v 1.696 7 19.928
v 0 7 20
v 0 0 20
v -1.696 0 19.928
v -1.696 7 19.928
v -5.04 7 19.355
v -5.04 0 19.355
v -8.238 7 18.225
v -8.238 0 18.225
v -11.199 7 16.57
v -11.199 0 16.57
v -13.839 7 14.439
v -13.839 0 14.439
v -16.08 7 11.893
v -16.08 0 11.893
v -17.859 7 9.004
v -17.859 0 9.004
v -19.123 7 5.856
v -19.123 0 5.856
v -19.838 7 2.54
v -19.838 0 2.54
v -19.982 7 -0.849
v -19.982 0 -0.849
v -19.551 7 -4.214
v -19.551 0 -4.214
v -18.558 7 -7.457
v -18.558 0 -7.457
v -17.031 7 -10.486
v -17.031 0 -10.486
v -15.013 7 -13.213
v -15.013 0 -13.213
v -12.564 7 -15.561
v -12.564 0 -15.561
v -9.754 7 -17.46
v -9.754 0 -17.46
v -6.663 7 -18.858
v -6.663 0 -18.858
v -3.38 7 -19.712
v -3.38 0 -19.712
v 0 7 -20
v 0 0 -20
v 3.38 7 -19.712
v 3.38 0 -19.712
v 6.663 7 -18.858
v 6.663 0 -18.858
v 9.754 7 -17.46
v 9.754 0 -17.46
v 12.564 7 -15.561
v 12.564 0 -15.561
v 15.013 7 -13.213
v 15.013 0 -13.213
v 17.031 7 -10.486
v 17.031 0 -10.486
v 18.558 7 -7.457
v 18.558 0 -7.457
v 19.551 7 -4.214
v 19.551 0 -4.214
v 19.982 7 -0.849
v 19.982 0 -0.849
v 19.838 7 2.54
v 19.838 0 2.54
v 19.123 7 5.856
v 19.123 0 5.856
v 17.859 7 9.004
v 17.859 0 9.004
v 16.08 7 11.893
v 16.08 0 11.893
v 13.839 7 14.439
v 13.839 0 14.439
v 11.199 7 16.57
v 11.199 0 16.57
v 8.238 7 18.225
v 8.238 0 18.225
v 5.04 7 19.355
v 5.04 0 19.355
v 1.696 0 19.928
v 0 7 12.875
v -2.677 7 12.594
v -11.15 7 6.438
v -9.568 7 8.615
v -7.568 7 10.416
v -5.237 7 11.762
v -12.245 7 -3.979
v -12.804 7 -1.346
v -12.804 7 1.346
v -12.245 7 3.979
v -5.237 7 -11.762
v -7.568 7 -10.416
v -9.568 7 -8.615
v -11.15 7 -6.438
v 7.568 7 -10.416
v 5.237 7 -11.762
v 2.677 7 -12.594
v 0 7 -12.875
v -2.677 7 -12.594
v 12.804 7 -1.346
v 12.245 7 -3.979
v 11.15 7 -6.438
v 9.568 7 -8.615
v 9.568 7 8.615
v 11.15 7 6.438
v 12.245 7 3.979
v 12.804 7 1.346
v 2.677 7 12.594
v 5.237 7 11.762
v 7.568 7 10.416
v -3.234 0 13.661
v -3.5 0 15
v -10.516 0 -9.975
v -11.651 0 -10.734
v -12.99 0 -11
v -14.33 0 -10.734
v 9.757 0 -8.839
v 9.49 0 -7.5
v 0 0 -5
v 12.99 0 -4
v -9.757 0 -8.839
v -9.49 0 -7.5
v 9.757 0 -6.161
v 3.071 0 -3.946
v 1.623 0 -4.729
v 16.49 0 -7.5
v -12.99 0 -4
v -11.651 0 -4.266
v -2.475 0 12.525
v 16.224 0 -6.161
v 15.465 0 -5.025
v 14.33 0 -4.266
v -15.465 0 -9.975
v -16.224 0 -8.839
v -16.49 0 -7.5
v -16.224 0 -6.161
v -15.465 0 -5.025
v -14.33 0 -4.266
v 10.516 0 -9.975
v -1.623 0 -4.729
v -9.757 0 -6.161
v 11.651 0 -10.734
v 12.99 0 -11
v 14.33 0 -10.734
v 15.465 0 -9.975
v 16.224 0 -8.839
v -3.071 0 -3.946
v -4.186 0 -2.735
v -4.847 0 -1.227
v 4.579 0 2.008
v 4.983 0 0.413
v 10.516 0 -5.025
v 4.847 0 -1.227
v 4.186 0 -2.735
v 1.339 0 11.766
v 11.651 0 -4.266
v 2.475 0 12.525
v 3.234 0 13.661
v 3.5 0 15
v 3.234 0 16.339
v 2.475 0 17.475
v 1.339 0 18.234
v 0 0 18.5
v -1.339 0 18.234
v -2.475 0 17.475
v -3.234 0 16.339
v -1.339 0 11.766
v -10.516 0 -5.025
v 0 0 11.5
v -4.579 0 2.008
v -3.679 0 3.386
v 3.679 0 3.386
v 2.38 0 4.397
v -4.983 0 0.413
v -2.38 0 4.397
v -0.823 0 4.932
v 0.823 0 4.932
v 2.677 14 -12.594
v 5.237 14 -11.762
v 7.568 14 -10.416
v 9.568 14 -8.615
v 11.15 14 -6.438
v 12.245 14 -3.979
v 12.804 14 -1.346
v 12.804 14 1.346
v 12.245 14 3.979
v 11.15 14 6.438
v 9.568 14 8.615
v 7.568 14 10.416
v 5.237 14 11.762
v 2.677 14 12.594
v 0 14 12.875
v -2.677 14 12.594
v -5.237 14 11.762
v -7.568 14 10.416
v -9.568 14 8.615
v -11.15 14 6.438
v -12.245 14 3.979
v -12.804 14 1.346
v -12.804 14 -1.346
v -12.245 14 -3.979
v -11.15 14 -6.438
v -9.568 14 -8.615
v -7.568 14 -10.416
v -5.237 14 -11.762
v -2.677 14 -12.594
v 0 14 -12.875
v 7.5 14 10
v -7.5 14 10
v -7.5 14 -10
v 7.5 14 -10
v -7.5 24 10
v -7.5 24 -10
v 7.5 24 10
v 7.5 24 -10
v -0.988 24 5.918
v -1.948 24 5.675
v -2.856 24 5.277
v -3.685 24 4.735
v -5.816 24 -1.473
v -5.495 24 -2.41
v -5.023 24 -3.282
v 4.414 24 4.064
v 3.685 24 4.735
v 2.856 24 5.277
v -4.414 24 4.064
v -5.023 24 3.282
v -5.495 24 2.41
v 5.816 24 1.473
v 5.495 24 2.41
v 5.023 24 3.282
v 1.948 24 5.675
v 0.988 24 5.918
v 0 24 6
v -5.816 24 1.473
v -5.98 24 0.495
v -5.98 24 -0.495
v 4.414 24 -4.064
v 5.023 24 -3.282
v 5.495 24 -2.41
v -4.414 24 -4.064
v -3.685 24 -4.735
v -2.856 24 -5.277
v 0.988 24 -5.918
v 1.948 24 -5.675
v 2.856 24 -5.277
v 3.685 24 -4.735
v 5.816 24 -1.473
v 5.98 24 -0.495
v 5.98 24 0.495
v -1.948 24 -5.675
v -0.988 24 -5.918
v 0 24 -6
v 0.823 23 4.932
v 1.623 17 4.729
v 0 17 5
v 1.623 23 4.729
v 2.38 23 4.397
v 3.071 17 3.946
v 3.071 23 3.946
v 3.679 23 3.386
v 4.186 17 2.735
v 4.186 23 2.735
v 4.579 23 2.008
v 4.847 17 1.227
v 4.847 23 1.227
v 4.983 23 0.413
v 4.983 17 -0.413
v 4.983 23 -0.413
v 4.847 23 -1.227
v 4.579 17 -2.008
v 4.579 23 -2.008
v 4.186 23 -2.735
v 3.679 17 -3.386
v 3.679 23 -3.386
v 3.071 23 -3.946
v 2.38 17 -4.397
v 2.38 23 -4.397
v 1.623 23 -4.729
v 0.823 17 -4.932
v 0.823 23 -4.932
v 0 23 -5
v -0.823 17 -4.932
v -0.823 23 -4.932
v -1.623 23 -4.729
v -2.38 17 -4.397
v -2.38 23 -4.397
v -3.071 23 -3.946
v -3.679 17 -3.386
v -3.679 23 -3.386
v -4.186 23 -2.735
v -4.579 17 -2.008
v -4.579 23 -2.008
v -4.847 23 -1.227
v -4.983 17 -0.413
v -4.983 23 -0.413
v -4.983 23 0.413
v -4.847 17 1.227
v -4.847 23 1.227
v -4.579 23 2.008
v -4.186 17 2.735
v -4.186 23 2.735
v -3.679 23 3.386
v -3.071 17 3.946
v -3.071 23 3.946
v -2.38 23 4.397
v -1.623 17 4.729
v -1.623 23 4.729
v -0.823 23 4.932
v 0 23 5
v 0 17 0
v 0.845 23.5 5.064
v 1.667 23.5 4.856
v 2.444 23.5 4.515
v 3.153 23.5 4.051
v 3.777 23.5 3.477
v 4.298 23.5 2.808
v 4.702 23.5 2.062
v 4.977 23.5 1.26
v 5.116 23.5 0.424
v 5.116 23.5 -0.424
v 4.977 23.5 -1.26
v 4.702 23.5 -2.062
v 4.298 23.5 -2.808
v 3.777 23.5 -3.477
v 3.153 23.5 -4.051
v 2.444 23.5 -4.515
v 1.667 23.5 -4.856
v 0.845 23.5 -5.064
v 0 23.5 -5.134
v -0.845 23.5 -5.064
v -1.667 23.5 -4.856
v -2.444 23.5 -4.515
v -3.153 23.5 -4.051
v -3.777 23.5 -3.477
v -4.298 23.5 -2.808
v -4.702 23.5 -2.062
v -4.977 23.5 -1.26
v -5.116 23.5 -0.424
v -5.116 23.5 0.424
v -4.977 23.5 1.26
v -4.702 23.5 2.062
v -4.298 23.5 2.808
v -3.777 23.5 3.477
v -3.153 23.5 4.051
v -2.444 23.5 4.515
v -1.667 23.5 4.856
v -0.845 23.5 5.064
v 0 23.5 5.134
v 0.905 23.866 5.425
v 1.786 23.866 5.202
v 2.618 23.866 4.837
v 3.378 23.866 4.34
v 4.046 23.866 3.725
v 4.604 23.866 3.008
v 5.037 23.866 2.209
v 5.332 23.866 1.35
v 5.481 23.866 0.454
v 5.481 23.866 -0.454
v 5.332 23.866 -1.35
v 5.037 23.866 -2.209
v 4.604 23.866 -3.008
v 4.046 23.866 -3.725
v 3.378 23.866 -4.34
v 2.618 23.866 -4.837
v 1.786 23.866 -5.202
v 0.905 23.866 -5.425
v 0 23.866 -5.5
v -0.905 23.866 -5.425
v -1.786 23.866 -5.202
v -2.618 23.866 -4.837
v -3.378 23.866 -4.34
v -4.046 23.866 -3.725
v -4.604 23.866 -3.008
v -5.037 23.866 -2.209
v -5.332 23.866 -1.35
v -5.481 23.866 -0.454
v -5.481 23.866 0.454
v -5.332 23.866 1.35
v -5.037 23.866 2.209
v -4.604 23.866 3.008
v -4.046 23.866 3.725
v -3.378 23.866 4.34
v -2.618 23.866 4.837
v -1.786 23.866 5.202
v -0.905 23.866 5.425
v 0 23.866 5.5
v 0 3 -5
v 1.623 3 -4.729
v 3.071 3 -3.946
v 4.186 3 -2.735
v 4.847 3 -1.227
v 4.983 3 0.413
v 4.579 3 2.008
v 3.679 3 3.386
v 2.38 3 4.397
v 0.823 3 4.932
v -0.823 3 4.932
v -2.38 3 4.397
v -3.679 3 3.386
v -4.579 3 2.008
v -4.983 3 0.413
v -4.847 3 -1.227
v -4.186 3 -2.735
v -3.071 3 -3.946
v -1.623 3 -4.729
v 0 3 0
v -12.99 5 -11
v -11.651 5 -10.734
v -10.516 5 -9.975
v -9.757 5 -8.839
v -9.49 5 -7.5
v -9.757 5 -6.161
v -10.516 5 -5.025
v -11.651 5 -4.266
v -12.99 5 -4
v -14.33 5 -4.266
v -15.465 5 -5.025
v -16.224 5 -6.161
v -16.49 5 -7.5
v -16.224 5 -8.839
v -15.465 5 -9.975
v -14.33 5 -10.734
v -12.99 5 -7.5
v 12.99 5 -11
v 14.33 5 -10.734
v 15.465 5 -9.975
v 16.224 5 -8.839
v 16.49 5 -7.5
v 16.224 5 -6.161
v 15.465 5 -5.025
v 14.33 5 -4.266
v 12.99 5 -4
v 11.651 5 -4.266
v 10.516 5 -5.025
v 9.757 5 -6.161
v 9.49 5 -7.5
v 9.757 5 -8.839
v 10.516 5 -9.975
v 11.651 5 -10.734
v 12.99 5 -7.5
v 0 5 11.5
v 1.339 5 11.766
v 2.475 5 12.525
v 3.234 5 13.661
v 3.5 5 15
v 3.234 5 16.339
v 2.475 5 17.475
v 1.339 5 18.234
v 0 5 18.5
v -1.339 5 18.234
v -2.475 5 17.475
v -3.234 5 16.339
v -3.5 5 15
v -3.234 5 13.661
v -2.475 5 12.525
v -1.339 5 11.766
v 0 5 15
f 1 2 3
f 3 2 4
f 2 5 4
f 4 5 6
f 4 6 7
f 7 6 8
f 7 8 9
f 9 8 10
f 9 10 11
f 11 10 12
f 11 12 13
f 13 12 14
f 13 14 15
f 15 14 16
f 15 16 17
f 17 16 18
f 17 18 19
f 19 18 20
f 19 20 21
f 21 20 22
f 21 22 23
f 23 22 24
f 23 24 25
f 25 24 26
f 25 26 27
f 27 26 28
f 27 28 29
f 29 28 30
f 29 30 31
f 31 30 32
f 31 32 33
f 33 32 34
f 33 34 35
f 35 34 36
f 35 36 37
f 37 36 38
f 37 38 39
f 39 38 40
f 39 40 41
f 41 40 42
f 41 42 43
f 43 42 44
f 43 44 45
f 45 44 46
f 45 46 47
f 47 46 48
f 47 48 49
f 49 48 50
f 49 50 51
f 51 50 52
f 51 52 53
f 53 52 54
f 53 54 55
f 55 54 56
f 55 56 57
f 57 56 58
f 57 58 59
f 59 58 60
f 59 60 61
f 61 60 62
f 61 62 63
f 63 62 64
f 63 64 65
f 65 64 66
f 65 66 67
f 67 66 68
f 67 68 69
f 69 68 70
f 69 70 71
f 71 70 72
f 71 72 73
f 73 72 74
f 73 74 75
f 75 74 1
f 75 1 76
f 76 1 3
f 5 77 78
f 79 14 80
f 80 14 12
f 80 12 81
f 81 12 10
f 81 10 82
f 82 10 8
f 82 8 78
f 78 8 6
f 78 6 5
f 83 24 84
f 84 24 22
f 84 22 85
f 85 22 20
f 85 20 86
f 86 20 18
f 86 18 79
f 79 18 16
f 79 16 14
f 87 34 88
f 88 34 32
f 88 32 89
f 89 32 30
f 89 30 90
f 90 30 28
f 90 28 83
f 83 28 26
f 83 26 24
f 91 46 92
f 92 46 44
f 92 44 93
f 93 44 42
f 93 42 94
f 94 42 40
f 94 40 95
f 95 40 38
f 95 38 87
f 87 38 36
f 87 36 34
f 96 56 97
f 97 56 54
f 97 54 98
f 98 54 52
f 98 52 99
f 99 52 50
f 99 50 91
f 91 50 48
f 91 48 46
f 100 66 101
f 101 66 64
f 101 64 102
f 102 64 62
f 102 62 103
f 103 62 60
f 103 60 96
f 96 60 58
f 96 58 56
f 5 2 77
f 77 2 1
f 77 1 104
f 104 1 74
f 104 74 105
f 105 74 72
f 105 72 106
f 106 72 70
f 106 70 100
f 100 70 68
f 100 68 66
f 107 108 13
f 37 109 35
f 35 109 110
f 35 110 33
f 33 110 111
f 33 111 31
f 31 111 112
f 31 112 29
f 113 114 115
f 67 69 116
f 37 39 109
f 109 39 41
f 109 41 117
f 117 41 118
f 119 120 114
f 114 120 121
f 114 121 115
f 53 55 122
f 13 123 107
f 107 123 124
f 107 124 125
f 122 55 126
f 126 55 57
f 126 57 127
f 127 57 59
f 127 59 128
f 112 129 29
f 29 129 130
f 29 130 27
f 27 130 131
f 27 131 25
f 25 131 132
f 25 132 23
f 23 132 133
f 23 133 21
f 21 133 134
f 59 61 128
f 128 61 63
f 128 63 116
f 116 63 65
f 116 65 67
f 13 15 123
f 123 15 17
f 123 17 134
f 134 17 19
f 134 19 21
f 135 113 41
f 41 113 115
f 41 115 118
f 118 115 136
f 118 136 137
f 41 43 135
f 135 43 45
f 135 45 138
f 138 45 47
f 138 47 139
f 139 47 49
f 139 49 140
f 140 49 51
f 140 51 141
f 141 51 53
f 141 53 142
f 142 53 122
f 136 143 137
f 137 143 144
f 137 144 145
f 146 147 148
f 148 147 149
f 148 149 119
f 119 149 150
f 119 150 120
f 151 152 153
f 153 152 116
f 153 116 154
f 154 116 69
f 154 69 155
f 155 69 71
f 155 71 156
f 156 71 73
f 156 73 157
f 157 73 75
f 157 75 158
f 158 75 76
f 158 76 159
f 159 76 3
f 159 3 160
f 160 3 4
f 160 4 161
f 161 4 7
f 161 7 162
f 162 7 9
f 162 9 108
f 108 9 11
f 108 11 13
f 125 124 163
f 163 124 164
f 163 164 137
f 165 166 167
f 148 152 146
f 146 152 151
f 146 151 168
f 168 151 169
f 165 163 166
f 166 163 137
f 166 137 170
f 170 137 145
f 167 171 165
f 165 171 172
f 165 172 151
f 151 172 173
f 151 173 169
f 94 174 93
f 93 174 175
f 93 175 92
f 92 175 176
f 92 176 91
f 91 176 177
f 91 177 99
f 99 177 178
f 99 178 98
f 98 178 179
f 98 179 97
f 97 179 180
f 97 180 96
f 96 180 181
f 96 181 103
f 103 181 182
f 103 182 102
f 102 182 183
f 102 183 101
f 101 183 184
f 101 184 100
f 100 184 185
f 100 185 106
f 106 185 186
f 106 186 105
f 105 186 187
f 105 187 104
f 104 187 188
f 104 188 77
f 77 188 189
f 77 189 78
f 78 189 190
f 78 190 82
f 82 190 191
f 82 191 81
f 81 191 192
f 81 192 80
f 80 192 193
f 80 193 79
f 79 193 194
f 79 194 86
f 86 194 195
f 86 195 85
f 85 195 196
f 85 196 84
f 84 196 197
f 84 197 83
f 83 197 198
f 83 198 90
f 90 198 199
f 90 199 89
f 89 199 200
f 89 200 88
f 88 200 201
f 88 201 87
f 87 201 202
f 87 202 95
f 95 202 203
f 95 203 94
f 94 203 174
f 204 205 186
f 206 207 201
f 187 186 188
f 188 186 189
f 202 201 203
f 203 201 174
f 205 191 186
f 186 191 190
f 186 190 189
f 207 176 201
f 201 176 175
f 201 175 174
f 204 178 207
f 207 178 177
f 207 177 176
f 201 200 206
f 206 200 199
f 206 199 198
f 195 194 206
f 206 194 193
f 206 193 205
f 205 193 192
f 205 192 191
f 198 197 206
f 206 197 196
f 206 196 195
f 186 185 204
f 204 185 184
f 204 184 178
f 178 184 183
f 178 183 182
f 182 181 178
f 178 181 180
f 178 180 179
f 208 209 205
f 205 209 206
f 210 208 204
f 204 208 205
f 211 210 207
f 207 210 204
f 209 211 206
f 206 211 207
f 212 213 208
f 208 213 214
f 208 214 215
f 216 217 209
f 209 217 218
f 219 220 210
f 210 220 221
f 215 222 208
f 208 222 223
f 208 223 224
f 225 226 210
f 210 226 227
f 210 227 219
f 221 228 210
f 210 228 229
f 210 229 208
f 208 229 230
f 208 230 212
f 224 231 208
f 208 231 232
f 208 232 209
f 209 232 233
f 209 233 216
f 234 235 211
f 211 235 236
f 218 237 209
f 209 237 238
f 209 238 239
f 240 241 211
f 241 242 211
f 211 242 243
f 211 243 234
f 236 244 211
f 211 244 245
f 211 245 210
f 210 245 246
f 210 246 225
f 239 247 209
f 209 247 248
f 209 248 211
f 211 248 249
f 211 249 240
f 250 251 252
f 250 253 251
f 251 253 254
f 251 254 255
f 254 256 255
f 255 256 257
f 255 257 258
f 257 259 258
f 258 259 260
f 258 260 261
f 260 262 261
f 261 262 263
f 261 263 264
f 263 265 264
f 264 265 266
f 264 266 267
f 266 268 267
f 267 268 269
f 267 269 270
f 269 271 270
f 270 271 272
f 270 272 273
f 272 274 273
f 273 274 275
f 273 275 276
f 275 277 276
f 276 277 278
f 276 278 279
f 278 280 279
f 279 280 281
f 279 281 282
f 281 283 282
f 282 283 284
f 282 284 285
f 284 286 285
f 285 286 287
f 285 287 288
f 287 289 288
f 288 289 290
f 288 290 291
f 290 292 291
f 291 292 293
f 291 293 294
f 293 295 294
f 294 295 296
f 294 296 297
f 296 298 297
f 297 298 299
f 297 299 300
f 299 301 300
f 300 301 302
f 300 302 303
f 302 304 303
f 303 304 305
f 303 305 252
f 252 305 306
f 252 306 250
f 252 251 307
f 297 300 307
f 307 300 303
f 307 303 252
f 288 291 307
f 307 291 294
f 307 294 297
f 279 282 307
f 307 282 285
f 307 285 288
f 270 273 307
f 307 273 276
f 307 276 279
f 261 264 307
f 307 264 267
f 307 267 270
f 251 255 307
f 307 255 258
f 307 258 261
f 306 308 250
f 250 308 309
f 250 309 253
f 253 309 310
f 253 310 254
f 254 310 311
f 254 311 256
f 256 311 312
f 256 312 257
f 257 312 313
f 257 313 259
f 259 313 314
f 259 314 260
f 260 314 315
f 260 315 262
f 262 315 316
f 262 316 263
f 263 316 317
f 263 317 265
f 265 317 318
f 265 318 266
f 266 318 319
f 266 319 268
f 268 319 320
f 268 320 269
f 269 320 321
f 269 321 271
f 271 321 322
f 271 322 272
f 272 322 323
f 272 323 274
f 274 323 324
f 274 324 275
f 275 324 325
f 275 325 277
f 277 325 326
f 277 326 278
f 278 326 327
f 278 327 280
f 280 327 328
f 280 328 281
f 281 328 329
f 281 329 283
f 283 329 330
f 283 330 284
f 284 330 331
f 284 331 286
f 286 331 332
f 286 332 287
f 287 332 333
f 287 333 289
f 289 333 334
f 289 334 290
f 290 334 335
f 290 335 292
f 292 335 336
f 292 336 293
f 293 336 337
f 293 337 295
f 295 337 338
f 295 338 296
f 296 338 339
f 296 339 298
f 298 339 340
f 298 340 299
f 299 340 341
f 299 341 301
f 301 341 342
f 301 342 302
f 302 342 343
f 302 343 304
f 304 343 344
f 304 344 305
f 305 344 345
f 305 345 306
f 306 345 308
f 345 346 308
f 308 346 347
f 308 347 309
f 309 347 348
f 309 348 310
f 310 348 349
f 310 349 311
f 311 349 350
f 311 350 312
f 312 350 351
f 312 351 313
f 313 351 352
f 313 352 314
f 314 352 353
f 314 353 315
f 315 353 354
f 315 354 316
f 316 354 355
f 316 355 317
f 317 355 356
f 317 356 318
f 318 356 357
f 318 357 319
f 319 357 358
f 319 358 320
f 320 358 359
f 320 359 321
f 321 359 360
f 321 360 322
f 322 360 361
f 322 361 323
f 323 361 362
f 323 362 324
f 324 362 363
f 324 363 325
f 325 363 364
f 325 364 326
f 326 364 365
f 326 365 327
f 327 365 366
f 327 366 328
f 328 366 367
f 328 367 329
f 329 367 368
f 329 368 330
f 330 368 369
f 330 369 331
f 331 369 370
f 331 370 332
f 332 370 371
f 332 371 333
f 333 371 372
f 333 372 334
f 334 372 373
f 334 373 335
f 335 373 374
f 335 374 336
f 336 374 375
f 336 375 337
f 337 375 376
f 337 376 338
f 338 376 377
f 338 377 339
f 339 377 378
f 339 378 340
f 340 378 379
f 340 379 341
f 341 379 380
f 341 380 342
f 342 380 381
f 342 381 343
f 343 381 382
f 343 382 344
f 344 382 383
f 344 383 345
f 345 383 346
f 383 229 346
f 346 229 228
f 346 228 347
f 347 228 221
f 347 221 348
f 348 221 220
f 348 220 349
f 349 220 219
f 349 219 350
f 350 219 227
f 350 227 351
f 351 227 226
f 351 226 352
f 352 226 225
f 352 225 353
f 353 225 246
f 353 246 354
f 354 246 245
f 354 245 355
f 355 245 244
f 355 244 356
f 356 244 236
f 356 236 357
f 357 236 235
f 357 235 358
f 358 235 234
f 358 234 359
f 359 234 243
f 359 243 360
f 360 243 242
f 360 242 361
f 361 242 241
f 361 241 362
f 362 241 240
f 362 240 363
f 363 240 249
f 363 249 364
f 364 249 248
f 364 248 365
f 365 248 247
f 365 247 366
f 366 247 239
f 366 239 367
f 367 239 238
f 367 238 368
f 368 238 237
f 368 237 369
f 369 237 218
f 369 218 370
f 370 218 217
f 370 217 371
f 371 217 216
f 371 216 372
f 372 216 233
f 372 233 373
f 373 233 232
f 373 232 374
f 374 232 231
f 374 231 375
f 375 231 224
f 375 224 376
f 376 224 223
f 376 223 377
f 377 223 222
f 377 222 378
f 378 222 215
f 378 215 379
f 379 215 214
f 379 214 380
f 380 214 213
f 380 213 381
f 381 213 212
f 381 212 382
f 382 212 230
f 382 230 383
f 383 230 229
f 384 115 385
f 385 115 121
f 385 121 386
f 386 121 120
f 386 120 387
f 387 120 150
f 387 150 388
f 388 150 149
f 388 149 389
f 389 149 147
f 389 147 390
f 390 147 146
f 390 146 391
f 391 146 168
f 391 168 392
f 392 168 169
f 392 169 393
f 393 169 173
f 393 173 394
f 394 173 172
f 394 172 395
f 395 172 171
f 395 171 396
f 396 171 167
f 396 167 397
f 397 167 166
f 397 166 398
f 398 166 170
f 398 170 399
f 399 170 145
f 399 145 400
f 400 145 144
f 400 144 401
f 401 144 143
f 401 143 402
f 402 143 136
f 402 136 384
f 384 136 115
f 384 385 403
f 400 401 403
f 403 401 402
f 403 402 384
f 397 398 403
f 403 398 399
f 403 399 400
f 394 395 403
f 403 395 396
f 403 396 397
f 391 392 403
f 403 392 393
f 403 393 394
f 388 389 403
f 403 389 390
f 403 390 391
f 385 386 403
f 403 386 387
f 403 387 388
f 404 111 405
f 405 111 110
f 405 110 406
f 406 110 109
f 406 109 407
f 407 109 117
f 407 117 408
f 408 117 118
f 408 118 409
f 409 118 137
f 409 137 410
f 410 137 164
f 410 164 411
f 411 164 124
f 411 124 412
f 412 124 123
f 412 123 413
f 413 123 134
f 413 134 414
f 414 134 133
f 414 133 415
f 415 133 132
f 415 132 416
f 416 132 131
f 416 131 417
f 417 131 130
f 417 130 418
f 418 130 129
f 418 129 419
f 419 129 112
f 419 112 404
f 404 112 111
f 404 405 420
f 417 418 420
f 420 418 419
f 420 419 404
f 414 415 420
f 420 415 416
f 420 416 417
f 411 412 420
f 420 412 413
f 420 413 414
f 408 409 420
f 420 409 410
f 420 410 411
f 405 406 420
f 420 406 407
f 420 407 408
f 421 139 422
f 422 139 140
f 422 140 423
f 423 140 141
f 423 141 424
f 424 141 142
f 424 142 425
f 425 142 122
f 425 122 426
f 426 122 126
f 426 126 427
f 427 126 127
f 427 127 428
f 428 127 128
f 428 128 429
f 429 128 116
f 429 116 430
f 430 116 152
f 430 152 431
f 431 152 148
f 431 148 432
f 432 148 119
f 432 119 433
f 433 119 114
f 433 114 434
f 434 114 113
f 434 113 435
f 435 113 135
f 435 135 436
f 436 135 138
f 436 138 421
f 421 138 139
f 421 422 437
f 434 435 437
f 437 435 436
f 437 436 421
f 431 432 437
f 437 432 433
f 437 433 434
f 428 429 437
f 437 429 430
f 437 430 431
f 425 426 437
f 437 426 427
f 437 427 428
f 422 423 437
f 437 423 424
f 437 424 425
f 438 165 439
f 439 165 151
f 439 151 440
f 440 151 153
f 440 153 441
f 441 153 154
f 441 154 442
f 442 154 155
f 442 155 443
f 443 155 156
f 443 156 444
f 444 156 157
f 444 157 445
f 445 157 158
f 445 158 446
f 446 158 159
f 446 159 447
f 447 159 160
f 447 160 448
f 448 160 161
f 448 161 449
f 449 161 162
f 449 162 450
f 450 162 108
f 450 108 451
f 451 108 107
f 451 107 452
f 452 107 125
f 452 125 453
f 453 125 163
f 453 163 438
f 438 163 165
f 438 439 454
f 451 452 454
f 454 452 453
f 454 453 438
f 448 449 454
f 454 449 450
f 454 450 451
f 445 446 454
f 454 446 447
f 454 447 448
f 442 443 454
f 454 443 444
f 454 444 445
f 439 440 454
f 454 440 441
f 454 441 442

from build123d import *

# Parameters (mm, degrees)
SKIZZE1_R                       = 20
AUFSATZ_LINEAR_AUSTRAGEN1_DEPTH = 7
SKIZZE3_R                       = 12.875
AUFSATZ_LINEAR_AUSTRAGEN2_DEPTH = 7
SKIZZE7_W                       = 15
SKIZZE7_H                       = 20
AUFSATZ_LINEAR_AUSTRAGEN3_DEPTH = 10
SKIZZE8_R                       = 5
SCHNITT_LINEAR_AUSTRAGEN2_DEPTH = 7
VERRUNDUNG2_R                   = 1
SCHNITT_LINEAR_START            = -3
SKIZZE9_R                       = 5
SCHNITT_LINEAR_AUSTRAGEN3_DEPTH = 3
SKIZZE5_R                       = 3.5
SCHNITT_LINEAR_AUSTRAGEN4_DEPTH = 5


with BuildPart() as part:
    # Skizze1 → Aufsatz-Linear austragen1 (new body)
    with BuildSketch(Plane(origin=(0, 0, 0), x_dir=(1, 0, 0), z_dir=(0, 1, 0))):
        with Locations(Location((0, 0, 0), (0, 0, 270))):
            Circle(SKIZZE1_R)
    extrude(amount=AUFSATZ_LINEAR_AUSTRAGEN1_DEPTH)

    # Skizze3 → Aufsatz-Linear austragen2 (add)
    with BuildSketch(Plane(origin=(0, 7, 0), x_dir=(1, 0, 0), z_dir=(0, 1, 0))):
        with Locations(Location((0, 0, 0), (0, 0, 270))):
            Circle(SKIZZE3_R)
    extrude(amount=AUFSATZ_LINEAR_AUSTRAGEN2_DEPTH)

    # Skizze7 → Aufsatz-Linear austragen3 (add)
    with BuildSketch(Plane(origin=(0, 14, 0), x_dir=(1, 0, 0), z_dir=(0, 1, 0))):
        Rectangle(SKIZZE7_W, SKIZZE7_H)
    extrude(amount=AUFSATZ_LINEAR_AUSTRAGEN3_DEPTH)

    # Skizze8 → Schnitt-Linear austragen2 (cut)
    with BuildSketch(Plane(origin=(0, 24, 0), x_dir=(1, 0, 0), z_dir=(0, 1, 0))):
        with Locations(Location((0, 0, 0), (0, 0, 270))):
            Circle(SKIZZE8_R)
    extrude(amount=-SCHNITT_LINEAR_AUSTRAGEN2_DEPTH, mode=Mode.SUBTRACT)

    # Verrundung2
    verrundung2_edges = [part.edges().sort_by_distance(p)[0] for p in [
        (0, 24, -5),
    ]]
    fillet(verrundung2_edges, radius=VERRUNDUNG2_R)

    # Skizze9 → Schnitt-Linear austragen3 (cut)
    with BuildSketch(Plane.XZ.offset(SCHNITT_LINEAR_START)):
        with Locations(Location((0, 0, 0), (0, 0, 90))):
            Circle(SKIZZE9_R)
    extrude(amount=SCHNITT_LINEAR_AUSTRAGEN3_DEPTH, mode=Mode.SUBTRACT)

    # Skizze5 → Schnitt-Linear austragen4 (cut)
    with BuildSketch(Plane(origin=(0, 0, 0), x_dir=(-1, 0, 0), z_dir=(0, -1, 0))):
        with Locations(Location((0, -15, 0), (0, 0, 90))):
            Circle(SKIZZE5_R)
        with Locations(Location((-12.990381057, 7.5, 0), (0, 0, 90))):
            Circle(SKIZZE5_R)
        with Locations(Location((12.990381057, 7.5, 0), (0, 0, 90))):
            Circle(SKIZZE5_R)
    extrude(amount=-SCHNITT_LINEAR_AUSTRAGEN4_DEPTH, mode=Mode.SUBTRACT)


solid = part.part
